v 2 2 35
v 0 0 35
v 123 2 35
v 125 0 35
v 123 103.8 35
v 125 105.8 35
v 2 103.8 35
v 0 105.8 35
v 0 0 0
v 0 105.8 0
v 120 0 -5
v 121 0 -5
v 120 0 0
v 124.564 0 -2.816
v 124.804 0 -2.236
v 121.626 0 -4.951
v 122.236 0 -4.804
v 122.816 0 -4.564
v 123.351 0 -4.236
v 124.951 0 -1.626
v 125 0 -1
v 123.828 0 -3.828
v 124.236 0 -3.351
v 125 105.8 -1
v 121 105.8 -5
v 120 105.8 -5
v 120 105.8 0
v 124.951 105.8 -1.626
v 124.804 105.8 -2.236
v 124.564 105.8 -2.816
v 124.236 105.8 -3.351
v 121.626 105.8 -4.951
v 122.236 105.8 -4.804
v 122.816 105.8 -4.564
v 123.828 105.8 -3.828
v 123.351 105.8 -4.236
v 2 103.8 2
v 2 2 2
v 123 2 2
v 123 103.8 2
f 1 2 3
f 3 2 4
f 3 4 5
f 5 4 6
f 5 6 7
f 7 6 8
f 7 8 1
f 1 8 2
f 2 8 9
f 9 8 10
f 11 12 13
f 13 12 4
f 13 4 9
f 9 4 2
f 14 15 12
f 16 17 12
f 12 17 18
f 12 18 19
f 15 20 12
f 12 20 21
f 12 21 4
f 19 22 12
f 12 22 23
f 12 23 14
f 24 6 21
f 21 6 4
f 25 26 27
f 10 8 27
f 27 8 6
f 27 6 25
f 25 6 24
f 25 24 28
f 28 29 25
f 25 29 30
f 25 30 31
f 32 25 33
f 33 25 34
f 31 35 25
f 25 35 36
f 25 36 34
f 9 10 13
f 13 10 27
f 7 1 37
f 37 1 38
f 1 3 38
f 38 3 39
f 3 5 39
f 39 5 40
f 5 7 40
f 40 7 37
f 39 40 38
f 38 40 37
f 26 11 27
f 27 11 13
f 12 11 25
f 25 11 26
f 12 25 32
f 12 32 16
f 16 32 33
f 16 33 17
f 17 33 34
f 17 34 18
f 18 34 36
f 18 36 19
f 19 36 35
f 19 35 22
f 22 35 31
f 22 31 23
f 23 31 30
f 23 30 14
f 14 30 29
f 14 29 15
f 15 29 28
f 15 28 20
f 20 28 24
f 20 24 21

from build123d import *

# Parameters (mm, degrees)
SKETCH_1_W      = 125
SKETCH_1_H      = 105.8
EXTRUDE_1_DEPTH = 35
SHELL_1_T       = -2
SKETCH_2_W      = 5
SKETCH_2_H      = 105.8
EXTRUDE_2_DEPTH = 5
FILLET_1_R      = 4


with BuildPart() as part:
    # 草图1 → 凸台-拉伸1 (new body)
    with BuildSketch(Plane.XY):
        with Locations((62.5, 52.9)):
            Rectangle(SKETCH_1_W, SKETCH_1_H)
    extrude(amount=EXTRUDE_1_DEPTH)

    # 抽壳1
    shell_1_openings = [part.faces().sort_by_distance(p)[0] for p in [
        (62.5, 52.9, 35),
    ]]
    offset(amount=SHELL_1_T, openings=shell_1_openings, kind=Kind.INTERSECTION)

    # 草图2 → 凸台-拉伸2 (add)
    with BuildSketch(Plane(origin=(0, 0, 0), x_dir=(-1, 0, 0), z_dir=(0, 0, -1))):
        with Locations((-122.5, 52.9)):
            Rectangle(SKETCH_2_W, SKETCH_2_H)
    extrude(amount=EXTRUDE_2_DEPTH)

    # 圆角1
    fillet_1_edges = [part.edges().sort_by_distance(p)[0] for p in [
        (125, 52.9, -5),
    ]]
    fillet(fillet_1_edges, radius=FILLET_1_R)


solid = part.part
